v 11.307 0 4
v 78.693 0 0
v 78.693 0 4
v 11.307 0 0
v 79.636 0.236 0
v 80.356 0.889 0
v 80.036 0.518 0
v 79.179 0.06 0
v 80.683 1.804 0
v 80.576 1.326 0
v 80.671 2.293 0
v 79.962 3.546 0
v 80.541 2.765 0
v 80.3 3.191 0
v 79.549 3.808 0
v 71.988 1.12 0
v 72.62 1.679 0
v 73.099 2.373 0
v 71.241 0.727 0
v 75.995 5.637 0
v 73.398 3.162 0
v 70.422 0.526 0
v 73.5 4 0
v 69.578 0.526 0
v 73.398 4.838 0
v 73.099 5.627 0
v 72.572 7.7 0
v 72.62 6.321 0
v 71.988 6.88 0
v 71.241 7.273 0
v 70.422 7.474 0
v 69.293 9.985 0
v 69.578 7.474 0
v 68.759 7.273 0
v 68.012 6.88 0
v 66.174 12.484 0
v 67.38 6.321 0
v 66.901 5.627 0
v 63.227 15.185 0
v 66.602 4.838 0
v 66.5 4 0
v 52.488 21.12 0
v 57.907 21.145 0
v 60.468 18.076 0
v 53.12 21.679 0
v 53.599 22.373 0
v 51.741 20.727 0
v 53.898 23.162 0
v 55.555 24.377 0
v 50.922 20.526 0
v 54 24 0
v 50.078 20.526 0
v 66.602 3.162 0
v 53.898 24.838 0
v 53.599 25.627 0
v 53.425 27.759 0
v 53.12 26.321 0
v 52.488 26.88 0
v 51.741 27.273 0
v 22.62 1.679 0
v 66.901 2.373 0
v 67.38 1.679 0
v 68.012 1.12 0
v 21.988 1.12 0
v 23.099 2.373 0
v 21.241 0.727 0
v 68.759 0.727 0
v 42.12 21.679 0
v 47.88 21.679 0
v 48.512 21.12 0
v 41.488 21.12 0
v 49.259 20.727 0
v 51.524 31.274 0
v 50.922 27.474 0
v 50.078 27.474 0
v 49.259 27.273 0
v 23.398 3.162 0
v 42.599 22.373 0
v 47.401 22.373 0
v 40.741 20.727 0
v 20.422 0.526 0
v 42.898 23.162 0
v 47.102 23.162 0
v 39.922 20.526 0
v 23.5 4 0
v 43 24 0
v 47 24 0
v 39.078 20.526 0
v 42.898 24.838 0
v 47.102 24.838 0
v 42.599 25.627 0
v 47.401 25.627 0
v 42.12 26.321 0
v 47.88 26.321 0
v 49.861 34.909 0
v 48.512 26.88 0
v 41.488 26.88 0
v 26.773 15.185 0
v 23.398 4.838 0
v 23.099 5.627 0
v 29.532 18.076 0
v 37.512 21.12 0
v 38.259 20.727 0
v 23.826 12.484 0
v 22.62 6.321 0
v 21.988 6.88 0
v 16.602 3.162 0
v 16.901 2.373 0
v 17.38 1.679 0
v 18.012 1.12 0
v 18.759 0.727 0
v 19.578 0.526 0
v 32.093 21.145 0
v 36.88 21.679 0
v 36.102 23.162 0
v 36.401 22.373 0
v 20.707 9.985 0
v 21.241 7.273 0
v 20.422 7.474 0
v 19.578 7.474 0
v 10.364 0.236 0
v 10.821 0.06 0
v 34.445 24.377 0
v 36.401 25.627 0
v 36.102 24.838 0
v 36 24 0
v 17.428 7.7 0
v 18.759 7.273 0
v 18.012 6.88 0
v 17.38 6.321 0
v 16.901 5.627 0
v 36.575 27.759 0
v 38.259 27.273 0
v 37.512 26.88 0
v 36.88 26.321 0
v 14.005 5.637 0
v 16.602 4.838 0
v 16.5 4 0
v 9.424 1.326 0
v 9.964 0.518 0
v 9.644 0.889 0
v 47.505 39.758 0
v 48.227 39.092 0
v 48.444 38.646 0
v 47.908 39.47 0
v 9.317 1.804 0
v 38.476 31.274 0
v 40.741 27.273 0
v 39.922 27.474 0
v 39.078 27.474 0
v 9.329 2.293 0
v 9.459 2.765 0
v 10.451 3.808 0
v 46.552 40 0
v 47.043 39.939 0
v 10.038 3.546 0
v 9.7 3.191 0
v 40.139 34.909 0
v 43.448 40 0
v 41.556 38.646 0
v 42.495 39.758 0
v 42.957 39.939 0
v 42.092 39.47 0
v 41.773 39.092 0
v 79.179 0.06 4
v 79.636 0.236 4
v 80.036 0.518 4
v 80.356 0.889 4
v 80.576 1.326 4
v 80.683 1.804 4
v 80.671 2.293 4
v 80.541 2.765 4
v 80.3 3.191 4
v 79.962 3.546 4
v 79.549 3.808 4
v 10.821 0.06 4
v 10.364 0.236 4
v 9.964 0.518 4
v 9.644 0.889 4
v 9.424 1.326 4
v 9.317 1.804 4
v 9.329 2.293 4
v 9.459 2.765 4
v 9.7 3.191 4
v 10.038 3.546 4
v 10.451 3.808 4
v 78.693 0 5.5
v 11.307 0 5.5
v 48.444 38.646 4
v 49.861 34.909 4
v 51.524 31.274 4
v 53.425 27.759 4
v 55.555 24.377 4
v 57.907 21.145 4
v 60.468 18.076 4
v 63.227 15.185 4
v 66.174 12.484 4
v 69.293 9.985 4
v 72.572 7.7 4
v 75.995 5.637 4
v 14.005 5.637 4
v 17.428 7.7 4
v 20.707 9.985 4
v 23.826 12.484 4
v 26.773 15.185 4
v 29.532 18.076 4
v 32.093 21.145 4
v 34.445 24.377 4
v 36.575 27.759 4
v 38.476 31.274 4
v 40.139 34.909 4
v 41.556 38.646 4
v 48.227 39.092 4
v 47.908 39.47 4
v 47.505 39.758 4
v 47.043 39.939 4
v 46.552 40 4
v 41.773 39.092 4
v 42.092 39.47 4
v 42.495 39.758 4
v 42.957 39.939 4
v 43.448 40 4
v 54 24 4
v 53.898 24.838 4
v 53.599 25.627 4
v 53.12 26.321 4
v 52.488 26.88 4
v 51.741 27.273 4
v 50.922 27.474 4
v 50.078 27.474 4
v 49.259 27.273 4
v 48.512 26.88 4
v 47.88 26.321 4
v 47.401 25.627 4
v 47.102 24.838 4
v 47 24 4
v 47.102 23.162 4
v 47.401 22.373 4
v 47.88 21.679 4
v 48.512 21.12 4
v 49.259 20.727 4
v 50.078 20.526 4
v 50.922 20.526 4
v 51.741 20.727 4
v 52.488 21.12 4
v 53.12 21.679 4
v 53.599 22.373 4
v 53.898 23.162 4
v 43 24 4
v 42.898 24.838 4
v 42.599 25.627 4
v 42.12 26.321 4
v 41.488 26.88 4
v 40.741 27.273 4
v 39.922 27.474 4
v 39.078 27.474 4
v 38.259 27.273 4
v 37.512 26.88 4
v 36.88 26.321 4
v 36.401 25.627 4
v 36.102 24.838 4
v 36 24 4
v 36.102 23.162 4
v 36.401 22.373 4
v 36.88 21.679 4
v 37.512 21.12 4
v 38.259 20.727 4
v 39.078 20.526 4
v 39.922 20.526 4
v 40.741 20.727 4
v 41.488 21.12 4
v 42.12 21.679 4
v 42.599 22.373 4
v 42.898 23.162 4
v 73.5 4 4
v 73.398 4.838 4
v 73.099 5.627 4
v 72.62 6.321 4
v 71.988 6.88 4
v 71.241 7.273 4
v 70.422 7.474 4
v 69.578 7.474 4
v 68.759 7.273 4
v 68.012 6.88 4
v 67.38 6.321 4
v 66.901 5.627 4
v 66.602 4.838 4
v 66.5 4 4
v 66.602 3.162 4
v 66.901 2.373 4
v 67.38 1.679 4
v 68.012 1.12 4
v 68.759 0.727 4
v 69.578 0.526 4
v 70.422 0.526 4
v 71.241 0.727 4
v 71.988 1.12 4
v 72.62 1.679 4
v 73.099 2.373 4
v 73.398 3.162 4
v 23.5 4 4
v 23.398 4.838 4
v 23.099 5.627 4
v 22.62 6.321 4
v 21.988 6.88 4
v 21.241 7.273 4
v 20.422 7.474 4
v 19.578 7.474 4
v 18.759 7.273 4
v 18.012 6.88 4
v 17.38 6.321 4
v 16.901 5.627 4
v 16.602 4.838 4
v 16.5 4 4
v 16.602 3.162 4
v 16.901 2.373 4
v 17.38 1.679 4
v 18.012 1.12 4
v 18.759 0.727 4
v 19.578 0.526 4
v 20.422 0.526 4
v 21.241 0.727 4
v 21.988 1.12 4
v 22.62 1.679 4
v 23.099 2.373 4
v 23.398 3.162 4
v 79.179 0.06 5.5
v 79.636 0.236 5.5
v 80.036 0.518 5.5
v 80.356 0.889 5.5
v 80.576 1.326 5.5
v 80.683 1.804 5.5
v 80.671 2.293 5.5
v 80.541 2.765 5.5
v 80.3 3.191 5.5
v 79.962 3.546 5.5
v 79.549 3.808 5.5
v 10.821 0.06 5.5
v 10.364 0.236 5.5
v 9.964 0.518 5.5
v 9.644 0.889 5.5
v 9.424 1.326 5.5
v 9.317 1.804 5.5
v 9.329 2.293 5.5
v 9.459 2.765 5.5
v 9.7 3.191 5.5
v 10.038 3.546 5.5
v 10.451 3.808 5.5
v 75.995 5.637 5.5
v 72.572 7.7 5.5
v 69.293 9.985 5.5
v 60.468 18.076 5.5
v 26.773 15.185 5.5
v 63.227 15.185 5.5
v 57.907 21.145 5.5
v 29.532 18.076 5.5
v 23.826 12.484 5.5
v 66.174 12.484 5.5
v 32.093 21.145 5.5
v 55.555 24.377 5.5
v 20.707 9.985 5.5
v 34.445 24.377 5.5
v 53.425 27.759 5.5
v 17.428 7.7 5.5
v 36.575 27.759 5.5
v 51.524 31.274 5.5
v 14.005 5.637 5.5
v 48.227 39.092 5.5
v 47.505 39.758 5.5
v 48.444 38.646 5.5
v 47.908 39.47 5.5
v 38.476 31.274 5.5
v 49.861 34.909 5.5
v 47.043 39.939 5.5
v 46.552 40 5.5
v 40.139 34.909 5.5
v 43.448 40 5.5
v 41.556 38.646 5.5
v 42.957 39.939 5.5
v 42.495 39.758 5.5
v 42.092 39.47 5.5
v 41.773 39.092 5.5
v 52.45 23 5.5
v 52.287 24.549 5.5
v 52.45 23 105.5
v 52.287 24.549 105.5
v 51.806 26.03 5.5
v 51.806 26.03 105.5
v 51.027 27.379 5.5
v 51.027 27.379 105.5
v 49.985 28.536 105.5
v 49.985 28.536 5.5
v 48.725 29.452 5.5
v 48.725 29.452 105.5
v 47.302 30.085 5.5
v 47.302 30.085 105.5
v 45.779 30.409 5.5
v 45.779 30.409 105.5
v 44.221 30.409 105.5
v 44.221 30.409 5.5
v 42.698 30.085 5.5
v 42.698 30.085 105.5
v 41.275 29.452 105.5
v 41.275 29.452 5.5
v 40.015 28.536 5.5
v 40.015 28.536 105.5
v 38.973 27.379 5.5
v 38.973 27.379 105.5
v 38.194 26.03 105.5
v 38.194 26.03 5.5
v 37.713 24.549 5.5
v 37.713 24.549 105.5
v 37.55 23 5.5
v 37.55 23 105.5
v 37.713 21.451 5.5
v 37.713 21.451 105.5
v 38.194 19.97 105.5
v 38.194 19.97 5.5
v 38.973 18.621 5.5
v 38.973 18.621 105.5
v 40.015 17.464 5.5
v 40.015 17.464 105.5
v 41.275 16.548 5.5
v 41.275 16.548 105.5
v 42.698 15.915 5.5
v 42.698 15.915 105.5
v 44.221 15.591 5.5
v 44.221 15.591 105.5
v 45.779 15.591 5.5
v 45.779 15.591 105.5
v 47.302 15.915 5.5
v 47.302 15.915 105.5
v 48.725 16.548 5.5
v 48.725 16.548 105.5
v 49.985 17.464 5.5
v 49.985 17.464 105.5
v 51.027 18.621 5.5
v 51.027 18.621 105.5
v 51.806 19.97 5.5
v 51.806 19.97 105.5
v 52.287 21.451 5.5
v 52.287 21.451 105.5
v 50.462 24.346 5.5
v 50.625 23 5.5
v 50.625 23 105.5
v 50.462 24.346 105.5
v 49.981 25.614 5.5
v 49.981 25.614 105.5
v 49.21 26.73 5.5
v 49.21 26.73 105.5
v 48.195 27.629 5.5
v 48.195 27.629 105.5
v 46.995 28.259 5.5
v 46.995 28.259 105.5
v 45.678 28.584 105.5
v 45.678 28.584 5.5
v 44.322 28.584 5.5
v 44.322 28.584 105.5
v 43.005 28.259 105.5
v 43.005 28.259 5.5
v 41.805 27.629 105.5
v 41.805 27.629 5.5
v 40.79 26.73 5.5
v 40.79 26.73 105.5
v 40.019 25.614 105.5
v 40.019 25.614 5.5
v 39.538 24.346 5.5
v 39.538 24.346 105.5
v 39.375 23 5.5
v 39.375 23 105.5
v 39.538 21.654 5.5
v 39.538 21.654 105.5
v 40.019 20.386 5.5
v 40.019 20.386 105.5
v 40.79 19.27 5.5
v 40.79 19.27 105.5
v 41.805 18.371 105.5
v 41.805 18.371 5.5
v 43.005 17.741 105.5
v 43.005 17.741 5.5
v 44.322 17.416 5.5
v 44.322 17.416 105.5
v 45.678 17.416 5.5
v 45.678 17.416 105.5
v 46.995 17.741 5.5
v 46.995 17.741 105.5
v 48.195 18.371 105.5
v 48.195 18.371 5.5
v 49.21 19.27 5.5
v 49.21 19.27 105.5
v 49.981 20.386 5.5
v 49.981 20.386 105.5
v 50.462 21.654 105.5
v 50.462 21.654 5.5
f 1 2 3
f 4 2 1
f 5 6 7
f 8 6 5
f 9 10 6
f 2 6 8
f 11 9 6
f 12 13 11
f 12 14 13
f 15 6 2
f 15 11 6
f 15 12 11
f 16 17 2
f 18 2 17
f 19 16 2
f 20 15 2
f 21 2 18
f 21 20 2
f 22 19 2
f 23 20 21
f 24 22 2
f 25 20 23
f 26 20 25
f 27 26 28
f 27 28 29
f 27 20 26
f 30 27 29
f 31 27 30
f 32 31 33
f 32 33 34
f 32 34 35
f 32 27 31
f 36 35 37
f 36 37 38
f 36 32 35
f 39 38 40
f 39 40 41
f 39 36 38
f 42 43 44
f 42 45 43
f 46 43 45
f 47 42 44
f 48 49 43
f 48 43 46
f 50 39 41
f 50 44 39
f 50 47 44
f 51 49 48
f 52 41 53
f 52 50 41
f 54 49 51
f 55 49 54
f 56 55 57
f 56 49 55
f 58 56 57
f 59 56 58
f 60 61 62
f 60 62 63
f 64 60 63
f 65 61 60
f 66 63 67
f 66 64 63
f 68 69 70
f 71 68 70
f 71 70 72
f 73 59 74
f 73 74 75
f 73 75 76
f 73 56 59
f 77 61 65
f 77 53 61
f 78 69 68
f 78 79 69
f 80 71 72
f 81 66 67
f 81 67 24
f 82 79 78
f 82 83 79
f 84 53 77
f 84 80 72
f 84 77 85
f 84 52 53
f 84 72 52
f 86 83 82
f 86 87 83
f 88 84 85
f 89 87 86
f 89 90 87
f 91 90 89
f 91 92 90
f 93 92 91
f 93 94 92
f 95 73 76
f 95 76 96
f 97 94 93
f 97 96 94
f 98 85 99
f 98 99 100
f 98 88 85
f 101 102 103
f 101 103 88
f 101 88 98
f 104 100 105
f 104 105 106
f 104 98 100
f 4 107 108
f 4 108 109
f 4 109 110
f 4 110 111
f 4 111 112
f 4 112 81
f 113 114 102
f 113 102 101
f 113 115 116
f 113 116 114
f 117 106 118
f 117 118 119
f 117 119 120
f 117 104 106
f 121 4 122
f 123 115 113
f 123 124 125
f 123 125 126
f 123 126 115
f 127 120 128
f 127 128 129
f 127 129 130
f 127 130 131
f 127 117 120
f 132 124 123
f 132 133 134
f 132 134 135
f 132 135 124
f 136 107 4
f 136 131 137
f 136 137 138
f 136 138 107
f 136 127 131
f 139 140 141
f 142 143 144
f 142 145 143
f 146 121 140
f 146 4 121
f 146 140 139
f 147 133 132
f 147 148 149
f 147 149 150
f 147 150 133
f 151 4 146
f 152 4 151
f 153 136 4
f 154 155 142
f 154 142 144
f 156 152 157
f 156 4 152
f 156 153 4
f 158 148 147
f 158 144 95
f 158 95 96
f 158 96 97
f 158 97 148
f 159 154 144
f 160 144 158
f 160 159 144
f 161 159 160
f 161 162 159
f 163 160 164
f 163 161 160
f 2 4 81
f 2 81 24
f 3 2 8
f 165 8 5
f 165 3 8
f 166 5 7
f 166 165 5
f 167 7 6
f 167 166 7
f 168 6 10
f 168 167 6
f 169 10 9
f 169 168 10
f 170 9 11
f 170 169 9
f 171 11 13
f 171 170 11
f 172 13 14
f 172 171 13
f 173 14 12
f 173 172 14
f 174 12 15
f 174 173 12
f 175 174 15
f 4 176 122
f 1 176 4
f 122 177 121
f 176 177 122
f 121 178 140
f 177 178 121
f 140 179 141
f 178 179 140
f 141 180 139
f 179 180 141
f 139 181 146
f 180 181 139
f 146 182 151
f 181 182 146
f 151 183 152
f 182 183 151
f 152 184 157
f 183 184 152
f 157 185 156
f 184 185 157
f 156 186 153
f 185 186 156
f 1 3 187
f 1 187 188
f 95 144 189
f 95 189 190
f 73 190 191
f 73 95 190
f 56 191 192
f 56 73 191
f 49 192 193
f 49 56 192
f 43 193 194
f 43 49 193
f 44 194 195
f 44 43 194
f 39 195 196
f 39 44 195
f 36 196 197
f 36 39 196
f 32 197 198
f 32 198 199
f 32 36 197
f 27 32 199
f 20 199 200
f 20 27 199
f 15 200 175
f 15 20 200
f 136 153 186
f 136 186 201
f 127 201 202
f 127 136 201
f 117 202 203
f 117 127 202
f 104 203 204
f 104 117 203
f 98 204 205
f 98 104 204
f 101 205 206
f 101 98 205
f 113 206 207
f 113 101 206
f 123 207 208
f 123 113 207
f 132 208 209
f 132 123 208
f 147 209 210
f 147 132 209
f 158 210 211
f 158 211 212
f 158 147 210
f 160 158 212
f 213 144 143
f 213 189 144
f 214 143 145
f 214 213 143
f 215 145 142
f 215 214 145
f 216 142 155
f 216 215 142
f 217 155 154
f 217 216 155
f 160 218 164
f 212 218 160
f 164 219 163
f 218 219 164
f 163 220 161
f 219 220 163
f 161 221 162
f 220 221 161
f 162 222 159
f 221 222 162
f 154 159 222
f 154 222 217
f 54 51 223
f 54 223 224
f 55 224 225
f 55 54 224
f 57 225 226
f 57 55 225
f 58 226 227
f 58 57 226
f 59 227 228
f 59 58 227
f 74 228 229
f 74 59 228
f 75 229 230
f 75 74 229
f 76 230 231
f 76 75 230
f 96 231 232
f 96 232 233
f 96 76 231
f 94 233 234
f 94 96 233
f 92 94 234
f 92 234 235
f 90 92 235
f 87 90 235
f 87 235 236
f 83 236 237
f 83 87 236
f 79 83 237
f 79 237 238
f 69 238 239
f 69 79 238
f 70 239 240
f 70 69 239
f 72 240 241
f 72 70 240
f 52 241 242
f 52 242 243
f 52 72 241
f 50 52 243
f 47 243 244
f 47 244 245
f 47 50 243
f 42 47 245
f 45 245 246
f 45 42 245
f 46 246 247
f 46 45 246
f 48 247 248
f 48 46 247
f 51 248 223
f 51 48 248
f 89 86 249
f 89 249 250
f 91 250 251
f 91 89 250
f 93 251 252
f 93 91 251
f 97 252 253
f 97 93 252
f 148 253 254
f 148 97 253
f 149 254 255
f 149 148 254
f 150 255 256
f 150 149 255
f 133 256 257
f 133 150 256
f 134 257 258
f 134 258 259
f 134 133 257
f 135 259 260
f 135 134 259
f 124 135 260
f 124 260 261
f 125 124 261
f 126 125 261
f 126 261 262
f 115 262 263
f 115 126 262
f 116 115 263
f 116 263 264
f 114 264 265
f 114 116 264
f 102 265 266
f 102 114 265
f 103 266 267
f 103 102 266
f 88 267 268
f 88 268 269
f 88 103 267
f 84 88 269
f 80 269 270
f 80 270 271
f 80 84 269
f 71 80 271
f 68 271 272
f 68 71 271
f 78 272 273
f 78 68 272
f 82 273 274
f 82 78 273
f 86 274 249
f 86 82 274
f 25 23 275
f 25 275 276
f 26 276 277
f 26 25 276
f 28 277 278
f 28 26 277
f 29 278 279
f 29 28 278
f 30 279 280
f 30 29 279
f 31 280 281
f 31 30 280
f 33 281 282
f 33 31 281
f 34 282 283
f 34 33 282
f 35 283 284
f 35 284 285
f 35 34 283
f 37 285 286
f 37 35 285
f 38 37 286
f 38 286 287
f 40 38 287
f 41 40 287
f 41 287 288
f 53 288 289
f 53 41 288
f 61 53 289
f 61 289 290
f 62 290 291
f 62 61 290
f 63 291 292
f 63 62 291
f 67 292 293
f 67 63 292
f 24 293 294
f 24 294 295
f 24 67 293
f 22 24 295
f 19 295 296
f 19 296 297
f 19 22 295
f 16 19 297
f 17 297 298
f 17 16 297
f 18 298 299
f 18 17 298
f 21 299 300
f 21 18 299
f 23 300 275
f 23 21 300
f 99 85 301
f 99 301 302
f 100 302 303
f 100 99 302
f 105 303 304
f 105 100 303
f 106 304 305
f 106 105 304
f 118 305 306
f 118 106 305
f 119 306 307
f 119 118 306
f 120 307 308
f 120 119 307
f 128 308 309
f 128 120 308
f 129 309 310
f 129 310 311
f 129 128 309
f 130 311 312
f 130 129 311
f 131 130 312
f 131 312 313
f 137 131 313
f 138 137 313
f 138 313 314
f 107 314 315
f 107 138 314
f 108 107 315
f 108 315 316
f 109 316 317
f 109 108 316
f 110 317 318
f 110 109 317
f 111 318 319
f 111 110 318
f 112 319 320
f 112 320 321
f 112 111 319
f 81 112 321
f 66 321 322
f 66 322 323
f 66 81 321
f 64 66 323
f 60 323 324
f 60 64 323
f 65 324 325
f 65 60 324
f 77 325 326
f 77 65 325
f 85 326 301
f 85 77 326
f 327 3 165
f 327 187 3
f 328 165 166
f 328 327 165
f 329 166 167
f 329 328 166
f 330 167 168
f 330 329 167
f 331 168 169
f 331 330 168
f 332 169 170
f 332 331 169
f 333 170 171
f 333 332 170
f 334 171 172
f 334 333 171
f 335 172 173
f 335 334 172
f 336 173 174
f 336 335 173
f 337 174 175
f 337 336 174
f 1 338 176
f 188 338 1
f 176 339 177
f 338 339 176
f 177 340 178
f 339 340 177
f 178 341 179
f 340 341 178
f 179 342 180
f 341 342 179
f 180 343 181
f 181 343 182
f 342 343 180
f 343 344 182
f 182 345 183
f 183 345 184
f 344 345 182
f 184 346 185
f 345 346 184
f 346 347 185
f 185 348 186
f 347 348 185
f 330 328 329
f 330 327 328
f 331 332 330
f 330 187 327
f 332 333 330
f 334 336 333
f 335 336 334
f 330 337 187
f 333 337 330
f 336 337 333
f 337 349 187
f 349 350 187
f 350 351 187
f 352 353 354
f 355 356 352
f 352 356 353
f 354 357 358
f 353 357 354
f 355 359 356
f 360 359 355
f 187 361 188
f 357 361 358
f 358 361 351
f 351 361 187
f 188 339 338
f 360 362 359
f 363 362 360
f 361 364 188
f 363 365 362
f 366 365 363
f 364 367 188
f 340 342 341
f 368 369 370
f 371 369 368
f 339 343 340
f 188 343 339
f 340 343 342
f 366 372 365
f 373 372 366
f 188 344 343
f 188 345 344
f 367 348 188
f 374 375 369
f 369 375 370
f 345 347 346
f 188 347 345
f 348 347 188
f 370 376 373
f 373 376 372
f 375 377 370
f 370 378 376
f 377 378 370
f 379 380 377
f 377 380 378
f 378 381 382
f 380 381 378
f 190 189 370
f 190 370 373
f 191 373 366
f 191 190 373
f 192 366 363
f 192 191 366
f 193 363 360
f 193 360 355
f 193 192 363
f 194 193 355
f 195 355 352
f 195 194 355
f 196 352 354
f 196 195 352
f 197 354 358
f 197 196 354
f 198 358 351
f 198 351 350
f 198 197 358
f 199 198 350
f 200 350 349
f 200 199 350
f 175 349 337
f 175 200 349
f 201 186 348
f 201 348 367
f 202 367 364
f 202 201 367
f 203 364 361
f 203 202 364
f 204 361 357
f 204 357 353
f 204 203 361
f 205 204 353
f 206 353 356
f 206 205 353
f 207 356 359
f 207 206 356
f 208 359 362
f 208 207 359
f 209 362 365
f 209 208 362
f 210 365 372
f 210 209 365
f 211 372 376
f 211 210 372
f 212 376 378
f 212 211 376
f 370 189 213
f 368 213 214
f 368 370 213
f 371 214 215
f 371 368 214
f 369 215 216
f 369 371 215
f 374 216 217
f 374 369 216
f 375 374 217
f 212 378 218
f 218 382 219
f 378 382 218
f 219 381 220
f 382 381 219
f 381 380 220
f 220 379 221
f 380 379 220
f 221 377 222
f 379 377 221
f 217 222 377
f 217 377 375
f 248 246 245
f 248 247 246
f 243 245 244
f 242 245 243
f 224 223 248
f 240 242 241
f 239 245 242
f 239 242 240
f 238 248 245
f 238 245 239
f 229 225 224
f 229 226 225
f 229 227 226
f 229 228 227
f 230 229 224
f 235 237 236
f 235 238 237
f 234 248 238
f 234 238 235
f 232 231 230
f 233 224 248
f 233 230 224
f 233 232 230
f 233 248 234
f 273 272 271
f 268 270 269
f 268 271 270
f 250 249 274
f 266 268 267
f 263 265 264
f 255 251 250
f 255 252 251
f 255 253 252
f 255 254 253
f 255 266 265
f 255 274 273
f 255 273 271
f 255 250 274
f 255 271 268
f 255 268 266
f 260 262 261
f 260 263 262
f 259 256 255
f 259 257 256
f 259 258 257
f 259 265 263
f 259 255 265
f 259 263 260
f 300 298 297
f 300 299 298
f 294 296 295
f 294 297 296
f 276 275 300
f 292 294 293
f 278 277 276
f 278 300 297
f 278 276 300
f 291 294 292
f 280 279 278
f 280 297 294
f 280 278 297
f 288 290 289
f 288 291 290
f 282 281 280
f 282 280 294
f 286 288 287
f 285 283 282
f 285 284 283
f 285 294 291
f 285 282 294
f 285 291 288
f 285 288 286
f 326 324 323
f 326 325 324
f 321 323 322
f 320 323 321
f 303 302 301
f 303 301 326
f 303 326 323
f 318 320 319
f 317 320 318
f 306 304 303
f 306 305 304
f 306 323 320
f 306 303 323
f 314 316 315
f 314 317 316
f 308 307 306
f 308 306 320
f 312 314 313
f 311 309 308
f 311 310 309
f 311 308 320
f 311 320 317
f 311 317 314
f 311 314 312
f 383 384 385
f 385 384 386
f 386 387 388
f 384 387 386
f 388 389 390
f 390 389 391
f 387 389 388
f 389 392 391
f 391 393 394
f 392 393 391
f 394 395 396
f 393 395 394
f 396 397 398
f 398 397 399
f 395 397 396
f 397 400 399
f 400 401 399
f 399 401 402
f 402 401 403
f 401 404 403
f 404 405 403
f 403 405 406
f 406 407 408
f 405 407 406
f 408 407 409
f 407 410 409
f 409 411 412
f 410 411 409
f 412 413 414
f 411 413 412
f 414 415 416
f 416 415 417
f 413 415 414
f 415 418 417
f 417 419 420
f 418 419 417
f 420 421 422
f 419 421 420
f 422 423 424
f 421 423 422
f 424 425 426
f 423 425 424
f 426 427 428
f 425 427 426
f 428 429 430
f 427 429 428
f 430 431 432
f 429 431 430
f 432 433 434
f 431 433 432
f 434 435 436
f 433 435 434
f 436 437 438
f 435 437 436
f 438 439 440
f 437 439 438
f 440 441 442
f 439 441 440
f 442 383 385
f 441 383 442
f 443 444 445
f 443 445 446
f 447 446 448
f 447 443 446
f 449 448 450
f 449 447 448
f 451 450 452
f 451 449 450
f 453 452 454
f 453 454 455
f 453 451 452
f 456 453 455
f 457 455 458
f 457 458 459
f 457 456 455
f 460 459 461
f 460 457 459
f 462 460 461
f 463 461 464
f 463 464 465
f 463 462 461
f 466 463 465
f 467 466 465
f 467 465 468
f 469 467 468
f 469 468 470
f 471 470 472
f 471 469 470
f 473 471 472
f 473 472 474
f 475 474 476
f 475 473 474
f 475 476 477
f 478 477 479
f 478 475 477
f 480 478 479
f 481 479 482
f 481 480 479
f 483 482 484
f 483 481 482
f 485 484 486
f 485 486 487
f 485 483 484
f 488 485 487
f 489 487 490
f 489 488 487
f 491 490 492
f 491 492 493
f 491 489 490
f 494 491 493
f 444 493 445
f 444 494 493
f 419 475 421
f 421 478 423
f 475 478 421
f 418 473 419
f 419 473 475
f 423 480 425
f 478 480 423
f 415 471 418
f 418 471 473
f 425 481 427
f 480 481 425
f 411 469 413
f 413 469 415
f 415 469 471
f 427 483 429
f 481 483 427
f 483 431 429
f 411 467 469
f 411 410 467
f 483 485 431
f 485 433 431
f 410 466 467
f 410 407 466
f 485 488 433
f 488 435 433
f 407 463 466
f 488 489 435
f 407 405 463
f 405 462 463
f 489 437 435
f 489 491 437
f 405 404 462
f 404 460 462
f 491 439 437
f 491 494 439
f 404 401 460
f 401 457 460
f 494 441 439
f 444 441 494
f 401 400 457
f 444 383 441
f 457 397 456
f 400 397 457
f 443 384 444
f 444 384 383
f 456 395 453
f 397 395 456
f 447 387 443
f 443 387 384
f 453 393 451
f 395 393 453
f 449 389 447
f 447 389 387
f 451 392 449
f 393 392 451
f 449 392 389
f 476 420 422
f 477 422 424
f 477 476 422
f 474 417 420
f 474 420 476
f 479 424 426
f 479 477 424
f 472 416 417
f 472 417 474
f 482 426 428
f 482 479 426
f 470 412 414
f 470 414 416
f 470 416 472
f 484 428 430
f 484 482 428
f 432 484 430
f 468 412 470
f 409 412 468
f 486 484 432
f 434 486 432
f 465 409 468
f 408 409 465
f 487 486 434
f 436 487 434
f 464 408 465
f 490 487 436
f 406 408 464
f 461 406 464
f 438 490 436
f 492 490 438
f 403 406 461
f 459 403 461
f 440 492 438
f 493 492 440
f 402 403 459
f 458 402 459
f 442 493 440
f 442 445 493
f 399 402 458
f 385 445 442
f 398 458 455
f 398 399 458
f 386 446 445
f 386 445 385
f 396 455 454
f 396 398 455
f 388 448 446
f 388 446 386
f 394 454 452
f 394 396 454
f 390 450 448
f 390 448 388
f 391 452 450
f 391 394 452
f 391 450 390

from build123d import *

# Parameters (mm, degrees)
SKETCH_R      = 3.5
PAD_DEPTH     = 4
PAD002_DEPTH  = 1.5
FILLET_R      = 2
SKETCH001_R   = 7.45
SKETCH001_R_2 = 5.625
PAD001_DEPTH  = 100


with BuildPart() as body:
    # Sketch → Pad (new body)
    with BuildSketch(Plane.XY):
        with BuildLine():
            Line((90, 0), (0, 0))
            ThreePointArc((0, 0), (26.154356, 14.587926), (42, 40))
            Line((42, 40), (48, 40))
            ThreePointArc((48, 40), (63.845644, 14.587926), (90, 0))
        make_face()
        with Locations((39.5, 24)):
            Circle(SKETCH_R, mode=Mode.SUBTRACT)
        with Locations((50.5, 24)):
            Circle(SKETCH_R, mode=Mode.SUBTRACT)
        with Locations((20, 4)):
            Circle(SKETCH_R, mode=Mode.SUBTRACT)
        with Locations((70, 4)):
            Circle(SKETCH_R, mode=Mode.SUBTRACT)
    extrude(amount=PAD_DEPTH)

    # Sketch002 → Pad002 (join)
    with BuildSketch(Plane.XY.offset(4)):
        with BuildLine():
            Line((90, 0), (0, 0))
            ThreePointArc((0, 0), (26.154356, 14.587926), (42, 40))
            Line((42, 40), (48, 40))
            ThreePointArc((48, 40), (63.845644, 14.587926), (90, 0))
        make_face()
    extrude(amount=PAD002_DEPTH)

    # Fillet
    fillet_edges = [body.edges().sort_by_distance(p)[0] for p in [
        (0, 0, 2),
        (0, 0, 4.75),
        (90, 0, 4.75),
        (90, 0, 2),
        (48, 40, 4.75),
        (48, 40, 2),
        (42, 40, 4.75),
        (42, 40, 2),
    ]]
    fillet(fillet_edges, radius=FILLET_R)


with BuildPart() as body001:
    # Sketch001 → Pad001 (new body)
    with BuildSketch(Plane.XY.offset(5.5)):
        with Locations((45, 23)):
            Circle(SKETCH001_R)
        with Locations((45, 23)):
            Circle(SKETCH001_R_2, mode=Mode.SUBTRACT)
    extrude(amount=PAD001_DEPTH)


solid = Compound([body.part, body001.part])
